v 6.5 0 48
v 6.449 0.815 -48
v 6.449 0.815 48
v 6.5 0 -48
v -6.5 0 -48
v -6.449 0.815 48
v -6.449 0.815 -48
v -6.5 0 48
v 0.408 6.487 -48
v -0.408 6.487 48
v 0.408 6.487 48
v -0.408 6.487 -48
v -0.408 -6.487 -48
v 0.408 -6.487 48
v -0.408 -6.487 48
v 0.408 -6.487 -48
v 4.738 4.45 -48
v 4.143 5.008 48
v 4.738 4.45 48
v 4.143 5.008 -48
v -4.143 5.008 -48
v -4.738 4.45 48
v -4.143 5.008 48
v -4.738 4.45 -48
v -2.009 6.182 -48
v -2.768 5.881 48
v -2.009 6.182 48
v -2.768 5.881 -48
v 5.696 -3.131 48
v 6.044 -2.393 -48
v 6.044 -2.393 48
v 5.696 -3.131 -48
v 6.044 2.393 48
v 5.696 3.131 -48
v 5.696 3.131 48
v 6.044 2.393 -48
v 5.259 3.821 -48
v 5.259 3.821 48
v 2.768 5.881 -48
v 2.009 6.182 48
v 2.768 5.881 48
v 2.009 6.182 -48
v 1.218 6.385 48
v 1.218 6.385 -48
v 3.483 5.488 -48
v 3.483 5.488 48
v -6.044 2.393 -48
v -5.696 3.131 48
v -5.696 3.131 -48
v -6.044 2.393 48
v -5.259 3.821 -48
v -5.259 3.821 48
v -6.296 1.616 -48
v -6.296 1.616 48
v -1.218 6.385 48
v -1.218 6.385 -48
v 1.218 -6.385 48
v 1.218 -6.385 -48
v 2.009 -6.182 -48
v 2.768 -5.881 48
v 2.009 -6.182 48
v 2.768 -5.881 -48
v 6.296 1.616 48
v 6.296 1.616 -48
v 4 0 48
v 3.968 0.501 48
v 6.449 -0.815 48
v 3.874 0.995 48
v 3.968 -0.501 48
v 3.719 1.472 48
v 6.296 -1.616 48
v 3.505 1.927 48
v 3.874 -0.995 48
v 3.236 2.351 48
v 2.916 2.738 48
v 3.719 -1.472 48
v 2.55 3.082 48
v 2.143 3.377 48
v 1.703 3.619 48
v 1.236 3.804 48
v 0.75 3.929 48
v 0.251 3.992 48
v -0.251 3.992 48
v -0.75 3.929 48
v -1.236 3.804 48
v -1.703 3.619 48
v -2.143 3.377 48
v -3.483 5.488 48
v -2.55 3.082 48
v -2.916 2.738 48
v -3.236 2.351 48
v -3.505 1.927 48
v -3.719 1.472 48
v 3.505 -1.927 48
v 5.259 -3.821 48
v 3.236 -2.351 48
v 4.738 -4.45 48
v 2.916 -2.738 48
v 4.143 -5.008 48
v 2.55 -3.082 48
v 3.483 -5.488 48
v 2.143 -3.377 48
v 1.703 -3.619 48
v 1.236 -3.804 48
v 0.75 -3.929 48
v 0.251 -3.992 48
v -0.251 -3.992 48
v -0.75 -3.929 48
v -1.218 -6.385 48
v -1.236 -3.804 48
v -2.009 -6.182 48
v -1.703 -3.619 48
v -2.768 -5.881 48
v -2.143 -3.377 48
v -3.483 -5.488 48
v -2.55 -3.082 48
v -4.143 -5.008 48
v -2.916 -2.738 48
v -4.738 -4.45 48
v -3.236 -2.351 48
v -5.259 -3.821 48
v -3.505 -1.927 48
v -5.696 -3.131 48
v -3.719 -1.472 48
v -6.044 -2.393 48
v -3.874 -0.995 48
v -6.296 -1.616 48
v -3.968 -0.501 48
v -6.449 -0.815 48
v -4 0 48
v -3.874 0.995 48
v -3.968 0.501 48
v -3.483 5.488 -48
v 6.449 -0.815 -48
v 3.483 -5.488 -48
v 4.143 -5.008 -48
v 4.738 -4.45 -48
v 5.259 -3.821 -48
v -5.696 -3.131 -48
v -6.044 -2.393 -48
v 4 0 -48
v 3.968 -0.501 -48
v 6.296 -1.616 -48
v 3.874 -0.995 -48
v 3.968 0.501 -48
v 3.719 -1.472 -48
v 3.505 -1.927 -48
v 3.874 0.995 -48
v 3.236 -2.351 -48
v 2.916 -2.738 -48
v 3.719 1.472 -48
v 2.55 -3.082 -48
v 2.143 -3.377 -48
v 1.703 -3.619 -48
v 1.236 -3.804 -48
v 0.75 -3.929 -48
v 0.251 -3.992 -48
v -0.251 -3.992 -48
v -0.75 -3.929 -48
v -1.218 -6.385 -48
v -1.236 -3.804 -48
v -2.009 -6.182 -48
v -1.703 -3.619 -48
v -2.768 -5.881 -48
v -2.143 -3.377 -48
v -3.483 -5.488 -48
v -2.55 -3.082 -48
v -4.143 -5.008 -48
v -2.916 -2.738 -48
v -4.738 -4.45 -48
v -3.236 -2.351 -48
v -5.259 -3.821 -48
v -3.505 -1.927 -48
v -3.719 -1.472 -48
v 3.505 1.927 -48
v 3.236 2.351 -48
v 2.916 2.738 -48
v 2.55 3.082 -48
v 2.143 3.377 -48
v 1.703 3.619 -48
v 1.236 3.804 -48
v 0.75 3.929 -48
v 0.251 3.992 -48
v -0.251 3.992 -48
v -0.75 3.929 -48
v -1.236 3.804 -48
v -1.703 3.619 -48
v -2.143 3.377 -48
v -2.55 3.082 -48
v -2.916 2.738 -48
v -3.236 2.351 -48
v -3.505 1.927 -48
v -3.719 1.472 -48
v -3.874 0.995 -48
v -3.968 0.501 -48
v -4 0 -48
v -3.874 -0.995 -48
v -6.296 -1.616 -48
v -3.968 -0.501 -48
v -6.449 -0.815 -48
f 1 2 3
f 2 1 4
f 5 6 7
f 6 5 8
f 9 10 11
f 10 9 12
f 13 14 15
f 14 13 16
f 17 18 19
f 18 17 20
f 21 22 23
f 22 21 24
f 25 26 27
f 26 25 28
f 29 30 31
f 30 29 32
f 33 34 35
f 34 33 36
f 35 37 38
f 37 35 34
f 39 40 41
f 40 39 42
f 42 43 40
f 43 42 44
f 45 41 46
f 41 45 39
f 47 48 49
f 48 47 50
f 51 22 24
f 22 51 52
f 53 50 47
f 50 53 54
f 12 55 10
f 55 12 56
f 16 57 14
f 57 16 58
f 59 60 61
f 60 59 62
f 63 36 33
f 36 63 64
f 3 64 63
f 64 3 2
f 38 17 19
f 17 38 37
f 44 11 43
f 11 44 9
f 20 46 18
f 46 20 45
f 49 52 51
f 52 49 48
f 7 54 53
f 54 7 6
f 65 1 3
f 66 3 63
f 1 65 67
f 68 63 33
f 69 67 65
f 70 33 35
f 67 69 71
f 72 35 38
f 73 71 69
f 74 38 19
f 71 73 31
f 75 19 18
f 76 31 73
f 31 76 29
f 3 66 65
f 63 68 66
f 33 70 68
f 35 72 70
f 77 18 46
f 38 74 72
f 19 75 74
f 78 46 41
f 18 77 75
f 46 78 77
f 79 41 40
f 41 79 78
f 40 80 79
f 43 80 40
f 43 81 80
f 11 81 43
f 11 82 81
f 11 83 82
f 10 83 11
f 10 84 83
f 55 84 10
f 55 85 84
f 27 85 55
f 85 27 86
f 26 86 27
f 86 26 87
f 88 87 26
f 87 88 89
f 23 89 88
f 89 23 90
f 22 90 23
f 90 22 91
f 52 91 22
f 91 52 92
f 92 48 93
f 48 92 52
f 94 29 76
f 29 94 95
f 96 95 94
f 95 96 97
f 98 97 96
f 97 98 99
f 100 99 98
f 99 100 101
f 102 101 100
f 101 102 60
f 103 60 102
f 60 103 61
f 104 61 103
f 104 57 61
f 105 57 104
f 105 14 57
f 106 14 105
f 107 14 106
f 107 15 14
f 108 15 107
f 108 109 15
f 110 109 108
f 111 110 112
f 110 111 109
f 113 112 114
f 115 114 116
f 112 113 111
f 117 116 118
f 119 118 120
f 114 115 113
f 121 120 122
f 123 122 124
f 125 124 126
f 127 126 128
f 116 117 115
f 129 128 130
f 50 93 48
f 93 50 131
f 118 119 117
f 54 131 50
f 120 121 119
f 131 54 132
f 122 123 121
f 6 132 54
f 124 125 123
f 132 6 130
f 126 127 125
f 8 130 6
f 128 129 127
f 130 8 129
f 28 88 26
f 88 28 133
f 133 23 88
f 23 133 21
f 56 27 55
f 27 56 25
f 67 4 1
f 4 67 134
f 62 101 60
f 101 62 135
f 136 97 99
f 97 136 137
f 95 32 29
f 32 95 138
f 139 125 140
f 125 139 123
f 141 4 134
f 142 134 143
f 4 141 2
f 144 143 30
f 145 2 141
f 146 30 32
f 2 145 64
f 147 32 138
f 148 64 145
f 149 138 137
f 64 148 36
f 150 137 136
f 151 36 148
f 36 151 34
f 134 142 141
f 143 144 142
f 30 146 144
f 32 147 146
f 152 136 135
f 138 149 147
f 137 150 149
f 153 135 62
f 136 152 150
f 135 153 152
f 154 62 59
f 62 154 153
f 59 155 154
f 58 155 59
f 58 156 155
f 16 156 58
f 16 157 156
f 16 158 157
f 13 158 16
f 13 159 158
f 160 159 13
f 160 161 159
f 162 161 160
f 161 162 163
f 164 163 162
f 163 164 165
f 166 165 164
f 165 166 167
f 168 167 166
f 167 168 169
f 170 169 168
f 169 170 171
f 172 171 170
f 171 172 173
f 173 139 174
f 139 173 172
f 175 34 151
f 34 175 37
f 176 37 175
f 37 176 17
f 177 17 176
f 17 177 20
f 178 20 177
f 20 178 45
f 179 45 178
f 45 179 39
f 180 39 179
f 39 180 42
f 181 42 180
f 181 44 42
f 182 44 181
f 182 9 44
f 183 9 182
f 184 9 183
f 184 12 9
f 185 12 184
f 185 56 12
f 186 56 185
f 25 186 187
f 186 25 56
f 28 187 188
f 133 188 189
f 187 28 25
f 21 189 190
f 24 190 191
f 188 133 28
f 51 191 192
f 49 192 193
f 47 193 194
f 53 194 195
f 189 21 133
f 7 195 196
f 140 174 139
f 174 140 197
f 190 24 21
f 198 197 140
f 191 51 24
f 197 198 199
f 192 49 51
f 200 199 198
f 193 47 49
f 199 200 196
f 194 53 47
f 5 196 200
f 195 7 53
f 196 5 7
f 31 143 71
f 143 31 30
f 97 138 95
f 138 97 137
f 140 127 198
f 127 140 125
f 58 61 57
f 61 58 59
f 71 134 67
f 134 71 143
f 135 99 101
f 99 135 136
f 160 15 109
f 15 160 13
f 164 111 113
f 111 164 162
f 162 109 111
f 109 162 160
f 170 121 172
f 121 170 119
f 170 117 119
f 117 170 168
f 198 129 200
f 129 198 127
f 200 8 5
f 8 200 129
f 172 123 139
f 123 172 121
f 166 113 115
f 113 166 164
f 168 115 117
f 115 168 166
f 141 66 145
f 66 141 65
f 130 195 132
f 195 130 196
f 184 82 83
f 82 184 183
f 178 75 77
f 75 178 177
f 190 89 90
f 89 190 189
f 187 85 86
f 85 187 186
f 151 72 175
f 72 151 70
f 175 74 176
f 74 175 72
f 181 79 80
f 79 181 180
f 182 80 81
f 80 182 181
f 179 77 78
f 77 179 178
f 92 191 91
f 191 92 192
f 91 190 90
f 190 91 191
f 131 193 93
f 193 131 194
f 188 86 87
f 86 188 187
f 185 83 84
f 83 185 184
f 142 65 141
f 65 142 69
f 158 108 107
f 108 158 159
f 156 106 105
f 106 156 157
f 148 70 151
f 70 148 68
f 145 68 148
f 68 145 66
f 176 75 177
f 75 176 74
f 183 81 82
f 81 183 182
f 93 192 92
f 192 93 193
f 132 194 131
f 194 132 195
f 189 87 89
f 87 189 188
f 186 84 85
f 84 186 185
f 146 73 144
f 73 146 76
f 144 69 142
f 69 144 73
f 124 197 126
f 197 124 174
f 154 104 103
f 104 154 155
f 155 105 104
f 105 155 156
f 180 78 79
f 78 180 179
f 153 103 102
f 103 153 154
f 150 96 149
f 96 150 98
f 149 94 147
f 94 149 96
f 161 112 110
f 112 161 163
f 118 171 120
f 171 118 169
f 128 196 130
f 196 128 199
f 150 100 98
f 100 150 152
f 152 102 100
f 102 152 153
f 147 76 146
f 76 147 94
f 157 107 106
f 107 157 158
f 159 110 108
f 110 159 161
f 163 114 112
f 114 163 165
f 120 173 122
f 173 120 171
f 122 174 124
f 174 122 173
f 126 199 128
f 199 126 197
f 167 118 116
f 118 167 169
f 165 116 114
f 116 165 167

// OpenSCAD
$fn = 50;


difference() {
	union() {
		translate(v = [0, 0, -48.0000000000]) {
			cylinder(h = 96, r = 6.5000000000);
		}
	}
	union() {
		translate(v = [0, 0, -100.0000000000]) {
			cylinder(h = 200, r = 4);
		}
	}
}
